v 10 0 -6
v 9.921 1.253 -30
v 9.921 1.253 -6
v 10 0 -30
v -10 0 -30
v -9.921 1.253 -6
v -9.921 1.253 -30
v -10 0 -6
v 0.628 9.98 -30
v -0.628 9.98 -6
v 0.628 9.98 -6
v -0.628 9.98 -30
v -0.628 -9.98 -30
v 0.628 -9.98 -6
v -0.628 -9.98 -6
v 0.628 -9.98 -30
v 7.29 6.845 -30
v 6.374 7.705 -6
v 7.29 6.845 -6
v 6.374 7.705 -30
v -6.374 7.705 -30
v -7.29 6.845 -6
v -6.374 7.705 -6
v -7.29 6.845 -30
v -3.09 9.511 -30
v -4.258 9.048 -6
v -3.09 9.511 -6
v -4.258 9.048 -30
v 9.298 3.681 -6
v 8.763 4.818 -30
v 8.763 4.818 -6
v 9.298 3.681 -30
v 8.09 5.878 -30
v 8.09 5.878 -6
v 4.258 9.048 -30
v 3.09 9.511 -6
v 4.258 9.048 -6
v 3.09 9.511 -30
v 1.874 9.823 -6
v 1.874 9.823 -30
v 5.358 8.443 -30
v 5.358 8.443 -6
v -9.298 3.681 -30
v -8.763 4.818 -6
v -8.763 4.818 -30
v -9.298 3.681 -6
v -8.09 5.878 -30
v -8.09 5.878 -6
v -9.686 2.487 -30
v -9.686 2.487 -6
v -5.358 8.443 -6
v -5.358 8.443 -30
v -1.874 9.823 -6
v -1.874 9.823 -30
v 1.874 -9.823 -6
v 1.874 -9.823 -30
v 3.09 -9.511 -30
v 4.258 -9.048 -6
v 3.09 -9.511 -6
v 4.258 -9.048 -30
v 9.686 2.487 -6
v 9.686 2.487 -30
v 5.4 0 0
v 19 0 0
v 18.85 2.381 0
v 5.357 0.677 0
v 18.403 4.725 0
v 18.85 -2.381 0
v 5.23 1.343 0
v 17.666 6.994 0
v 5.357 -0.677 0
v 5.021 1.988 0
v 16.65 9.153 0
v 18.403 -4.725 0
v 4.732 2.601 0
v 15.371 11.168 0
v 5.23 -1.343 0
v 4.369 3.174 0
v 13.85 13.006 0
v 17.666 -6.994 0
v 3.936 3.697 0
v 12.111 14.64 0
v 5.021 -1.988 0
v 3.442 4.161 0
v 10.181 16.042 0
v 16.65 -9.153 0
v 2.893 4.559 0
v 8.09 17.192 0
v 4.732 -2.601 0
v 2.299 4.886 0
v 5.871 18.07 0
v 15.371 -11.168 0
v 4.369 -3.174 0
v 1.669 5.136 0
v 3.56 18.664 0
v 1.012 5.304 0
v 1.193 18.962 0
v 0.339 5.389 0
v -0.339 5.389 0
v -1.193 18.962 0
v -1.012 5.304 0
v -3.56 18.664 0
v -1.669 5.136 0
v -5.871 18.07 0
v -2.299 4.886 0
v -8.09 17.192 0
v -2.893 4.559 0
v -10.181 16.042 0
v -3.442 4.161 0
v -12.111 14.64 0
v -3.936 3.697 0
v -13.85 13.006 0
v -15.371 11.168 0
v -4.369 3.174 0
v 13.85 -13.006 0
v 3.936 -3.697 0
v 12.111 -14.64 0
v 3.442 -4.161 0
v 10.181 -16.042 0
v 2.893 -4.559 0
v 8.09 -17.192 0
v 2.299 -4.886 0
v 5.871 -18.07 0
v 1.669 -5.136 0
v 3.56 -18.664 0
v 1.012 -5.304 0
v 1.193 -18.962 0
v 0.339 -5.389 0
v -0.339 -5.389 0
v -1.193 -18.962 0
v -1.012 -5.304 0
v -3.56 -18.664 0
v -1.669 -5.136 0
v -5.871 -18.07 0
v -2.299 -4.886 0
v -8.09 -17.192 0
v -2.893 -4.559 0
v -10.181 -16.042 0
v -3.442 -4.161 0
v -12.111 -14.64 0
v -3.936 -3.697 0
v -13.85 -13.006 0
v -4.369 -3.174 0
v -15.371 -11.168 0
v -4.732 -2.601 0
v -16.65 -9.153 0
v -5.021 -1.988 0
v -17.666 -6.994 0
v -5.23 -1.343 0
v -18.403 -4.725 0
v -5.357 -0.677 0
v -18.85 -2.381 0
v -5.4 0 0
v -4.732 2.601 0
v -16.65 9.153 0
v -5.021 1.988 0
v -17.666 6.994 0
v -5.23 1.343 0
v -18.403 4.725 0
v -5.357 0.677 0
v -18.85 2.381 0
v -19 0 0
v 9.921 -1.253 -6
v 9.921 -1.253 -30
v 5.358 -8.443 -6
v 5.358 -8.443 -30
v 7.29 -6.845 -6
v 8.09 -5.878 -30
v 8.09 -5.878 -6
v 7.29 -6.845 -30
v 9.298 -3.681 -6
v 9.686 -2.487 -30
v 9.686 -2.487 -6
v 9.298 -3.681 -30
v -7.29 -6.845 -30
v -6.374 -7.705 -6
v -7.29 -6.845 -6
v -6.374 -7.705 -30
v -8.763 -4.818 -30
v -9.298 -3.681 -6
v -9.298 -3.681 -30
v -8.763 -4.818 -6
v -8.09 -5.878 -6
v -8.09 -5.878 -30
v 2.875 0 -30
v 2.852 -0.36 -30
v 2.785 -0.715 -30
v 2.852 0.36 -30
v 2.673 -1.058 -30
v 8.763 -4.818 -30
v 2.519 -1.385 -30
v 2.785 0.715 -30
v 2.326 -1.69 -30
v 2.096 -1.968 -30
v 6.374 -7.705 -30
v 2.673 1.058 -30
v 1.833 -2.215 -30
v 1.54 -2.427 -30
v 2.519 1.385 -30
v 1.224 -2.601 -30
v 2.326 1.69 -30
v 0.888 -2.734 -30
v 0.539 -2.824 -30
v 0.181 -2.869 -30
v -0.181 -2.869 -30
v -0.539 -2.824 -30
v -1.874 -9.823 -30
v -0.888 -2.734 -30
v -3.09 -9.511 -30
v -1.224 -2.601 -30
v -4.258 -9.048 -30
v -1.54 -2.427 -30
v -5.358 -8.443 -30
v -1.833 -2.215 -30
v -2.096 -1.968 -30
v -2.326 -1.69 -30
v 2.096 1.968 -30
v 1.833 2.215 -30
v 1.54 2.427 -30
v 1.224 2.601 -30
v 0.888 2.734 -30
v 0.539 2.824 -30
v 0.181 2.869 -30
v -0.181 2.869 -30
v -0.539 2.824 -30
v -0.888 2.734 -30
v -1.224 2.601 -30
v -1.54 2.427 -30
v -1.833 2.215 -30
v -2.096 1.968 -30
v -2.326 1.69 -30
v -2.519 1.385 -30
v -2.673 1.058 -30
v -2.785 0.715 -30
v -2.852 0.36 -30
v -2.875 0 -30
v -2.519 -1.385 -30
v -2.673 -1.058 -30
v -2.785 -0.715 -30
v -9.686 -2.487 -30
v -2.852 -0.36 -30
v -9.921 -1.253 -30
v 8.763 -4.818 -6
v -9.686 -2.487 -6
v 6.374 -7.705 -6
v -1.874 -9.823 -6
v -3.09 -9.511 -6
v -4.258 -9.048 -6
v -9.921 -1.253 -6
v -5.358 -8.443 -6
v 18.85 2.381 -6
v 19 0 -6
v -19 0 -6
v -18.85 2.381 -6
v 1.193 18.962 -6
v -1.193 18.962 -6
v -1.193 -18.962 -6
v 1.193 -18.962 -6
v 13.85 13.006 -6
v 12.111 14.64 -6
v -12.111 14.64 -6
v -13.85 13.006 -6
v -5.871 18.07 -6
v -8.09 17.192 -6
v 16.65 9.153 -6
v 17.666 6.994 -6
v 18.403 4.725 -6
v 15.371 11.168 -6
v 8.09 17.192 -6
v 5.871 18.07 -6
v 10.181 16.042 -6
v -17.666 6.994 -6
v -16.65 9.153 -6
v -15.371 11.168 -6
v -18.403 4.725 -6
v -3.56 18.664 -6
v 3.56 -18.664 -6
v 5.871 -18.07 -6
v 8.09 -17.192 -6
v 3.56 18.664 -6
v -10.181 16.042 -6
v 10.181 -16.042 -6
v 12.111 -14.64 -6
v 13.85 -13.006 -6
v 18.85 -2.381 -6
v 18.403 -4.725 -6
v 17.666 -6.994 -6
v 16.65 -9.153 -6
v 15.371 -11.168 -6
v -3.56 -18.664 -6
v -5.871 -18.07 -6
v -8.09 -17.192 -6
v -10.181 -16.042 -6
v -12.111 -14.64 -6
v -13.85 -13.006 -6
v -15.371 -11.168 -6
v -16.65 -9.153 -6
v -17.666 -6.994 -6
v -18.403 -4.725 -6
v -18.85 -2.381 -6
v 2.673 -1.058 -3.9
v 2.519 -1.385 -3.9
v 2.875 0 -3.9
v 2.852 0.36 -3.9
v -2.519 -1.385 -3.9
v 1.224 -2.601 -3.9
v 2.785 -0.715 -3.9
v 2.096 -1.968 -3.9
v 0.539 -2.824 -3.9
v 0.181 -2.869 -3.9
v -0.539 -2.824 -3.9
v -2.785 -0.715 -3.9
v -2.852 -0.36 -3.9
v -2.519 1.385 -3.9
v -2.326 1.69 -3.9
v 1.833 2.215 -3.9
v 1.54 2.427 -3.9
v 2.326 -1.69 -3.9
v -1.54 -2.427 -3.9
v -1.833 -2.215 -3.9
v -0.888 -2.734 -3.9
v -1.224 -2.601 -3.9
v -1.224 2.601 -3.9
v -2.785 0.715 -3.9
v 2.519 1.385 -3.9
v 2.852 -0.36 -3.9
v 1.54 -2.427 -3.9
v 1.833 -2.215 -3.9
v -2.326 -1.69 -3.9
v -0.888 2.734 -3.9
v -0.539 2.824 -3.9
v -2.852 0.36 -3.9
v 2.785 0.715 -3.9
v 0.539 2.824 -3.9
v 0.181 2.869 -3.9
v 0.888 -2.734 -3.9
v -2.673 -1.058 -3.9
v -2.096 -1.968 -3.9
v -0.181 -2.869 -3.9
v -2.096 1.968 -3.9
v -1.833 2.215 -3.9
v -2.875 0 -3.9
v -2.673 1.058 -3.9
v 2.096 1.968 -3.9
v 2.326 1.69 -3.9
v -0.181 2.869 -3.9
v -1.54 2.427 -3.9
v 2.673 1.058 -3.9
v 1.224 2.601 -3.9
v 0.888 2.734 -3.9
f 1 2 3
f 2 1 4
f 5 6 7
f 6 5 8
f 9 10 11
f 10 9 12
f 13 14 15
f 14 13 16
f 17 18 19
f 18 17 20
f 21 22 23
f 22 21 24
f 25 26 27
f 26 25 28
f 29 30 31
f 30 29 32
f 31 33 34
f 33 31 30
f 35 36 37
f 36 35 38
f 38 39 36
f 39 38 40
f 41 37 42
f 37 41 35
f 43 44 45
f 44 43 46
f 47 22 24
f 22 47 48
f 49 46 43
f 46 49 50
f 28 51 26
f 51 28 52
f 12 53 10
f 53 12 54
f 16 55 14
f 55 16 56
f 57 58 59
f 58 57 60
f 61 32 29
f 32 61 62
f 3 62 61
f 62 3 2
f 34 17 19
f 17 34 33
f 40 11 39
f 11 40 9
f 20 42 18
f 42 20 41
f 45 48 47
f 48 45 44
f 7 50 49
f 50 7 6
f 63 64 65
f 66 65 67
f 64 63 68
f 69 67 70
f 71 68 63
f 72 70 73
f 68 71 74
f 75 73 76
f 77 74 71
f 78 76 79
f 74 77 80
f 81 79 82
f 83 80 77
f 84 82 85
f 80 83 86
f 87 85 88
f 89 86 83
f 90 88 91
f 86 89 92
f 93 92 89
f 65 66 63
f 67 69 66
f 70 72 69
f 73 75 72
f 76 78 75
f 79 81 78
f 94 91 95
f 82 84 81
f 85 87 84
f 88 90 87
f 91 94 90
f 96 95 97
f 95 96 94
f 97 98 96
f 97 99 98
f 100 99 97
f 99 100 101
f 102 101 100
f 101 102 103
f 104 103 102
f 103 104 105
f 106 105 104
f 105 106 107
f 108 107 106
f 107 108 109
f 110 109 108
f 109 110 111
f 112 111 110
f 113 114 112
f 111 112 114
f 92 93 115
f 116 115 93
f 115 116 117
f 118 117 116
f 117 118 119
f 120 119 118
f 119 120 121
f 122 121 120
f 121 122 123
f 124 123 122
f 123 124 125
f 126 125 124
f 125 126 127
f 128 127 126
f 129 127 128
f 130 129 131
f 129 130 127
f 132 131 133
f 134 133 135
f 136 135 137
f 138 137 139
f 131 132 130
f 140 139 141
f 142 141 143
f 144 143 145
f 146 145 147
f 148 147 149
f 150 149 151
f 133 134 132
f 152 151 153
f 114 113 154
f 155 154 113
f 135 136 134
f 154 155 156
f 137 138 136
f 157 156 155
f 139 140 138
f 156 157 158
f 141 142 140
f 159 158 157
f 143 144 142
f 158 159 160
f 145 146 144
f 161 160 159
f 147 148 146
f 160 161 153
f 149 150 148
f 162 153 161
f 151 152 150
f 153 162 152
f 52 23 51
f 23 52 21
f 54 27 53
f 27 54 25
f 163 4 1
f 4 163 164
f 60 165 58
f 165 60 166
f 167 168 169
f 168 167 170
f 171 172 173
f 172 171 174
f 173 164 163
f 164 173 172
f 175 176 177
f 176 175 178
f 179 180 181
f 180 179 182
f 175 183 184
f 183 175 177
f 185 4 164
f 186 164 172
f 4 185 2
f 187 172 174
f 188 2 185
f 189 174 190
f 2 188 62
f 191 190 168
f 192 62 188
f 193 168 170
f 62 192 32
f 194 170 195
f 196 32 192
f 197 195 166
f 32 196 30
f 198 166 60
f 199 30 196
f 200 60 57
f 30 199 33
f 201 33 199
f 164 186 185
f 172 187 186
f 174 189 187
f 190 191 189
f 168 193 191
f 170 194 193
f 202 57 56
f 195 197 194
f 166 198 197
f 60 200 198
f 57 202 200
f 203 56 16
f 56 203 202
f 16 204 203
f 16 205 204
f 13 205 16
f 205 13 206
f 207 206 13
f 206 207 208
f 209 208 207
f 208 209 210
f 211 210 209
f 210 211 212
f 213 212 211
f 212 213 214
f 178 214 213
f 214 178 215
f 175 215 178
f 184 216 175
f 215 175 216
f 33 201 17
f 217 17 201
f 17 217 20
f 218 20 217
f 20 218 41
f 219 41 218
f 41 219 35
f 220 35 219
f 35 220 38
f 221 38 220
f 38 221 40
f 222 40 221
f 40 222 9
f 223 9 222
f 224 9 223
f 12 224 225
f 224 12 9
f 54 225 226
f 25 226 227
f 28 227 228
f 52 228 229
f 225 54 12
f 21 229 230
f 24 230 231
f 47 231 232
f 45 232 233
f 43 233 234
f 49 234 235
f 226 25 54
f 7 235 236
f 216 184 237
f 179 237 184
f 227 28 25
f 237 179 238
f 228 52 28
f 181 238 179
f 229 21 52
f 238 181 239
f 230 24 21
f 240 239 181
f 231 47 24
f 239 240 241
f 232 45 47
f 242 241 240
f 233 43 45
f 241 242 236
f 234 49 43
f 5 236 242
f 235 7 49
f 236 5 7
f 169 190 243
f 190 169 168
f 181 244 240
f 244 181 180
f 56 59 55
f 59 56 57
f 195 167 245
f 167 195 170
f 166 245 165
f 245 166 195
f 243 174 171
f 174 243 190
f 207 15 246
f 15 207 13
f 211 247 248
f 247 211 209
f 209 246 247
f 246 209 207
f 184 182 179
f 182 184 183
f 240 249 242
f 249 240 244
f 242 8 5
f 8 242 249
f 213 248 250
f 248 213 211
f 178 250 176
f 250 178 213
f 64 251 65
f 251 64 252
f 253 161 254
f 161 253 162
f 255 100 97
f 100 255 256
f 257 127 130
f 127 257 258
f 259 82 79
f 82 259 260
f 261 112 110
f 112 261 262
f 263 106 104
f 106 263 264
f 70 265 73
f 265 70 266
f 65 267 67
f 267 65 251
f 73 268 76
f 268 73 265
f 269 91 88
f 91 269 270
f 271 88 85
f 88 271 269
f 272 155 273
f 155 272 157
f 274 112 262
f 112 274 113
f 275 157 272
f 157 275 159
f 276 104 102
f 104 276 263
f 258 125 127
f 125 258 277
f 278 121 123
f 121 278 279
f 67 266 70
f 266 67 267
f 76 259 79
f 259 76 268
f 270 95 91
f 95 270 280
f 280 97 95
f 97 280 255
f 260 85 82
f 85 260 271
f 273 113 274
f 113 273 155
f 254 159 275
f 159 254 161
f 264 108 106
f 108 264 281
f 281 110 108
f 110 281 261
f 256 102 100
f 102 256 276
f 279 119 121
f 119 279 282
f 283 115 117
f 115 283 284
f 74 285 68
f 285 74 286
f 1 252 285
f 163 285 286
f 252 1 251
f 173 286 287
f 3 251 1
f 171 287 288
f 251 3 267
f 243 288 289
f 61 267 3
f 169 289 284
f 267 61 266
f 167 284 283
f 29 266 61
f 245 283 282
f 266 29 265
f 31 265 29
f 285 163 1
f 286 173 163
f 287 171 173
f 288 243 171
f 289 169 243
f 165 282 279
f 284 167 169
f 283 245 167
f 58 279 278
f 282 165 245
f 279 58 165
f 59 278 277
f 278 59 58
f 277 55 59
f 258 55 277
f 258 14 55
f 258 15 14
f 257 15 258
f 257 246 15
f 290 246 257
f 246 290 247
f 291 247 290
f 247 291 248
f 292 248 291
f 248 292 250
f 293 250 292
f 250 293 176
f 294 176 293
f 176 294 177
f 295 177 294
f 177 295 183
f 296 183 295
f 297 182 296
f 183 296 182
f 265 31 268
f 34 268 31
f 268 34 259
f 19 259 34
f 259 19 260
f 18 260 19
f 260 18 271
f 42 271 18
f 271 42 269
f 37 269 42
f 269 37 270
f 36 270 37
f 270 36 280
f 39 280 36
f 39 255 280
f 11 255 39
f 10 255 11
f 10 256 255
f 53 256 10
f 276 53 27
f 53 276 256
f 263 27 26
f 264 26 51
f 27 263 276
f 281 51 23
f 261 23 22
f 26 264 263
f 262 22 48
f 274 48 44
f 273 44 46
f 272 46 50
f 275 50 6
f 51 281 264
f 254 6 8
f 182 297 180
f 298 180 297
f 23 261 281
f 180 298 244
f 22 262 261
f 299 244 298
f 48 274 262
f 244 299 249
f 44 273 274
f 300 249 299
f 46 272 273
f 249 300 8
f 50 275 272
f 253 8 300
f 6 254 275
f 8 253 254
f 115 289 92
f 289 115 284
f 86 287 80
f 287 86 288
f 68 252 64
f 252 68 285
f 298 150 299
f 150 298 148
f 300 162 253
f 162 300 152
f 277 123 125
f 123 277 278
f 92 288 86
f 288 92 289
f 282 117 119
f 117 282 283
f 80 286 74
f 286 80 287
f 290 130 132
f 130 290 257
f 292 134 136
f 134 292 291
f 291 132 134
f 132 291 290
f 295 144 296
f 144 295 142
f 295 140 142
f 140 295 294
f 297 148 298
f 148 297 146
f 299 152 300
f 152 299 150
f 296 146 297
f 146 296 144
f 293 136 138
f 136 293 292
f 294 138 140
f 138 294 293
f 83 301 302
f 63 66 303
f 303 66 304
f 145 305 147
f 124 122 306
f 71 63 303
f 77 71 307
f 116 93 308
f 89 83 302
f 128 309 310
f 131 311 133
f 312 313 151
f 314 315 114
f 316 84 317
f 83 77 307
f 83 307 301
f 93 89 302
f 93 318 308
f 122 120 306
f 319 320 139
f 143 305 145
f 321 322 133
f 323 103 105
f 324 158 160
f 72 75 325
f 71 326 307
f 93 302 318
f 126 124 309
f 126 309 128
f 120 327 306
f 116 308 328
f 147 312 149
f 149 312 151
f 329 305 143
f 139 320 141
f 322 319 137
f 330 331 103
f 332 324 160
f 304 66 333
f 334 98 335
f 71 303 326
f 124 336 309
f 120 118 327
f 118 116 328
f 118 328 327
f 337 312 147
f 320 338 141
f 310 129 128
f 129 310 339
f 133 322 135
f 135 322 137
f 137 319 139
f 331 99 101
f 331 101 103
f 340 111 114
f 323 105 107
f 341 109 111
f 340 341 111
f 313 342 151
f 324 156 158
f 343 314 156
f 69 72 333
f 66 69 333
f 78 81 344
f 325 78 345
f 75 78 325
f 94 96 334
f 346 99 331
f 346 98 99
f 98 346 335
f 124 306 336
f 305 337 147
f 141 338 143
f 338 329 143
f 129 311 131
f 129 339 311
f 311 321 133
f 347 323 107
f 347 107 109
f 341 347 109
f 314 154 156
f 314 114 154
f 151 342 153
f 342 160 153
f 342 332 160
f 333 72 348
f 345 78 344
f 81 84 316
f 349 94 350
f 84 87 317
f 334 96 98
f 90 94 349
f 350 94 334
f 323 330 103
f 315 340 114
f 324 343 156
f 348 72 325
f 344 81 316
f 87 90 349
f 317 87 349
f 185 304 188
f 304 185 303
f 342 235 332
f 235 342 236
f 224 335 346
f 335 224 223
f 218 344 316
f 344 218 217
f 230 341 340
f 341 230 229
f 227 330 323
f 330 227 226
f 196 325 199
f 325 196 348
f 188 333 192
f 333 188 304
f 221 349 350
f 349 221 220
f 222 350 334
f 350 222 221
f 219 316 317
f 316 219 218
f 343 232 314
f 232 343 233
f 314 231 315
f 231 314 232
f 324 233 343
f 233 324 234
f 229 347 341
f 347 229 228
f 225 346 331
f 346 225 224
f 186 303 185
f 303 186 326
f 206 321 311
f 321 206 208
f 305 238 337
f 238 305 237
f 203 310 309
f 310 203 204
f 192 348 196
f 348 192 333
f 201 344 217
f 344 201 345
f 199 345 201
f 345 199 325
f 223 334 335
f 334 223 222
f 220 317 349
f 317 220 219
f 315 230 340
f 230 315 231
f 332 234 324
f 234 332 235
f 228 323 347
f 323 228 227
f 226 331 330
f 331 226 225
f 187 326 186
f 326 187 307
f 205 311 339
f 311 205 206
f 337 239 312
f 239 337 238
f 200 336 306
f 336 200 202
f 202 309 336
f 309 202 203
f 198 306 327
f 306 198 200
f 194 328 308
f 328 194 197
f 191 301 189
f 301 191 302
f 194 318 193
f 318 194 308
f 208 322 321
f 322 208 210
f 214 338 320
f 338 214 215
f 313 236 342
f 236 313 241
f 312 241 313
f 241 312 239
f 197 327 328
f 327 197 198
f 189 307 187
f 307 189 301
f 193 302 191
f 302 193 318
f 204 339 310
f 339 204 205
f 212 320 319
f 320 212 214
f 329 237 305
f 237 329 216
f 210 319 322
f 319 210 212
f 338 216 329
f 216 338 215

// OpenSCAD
$fn = 50;


difference() {
	union() {
		translate(v = [0, 0, -30.0000000000]) {
			cylinder(h = 30, r = 10.0000000000);
		}
		translate(v = [0, 0, -6.0000000000]) {
			cylinder(h = 6, r = 19.0000000000);
		}
	}
	union() {
		translate(v = [0, 0, 0]) {
			rotate(a = [0, 0, 0]) {
				difference() {
					union() {
						#translate(v = [0, 0, -30.0000000000]) {
							cylinder(h = 30, r = 2.6000000000);
						}
						#translate(v = [0, 0, -3.9000000000]) {
							cylinder(h = 3.9000000000, r1 = 2.8750000000, r2 = 5.4000000000);
						}
						#translate(v = [0, 0, -30.0000000000]) {
							cylinder(h = 30, r = 2.8750000000);
						}
						#translate(v = [0, 0, -30.0000000000]) {
							cylinder(h = 30, r = 2.6000000000);
						}
					}
					union();
				}
			}
		}
	}
}
